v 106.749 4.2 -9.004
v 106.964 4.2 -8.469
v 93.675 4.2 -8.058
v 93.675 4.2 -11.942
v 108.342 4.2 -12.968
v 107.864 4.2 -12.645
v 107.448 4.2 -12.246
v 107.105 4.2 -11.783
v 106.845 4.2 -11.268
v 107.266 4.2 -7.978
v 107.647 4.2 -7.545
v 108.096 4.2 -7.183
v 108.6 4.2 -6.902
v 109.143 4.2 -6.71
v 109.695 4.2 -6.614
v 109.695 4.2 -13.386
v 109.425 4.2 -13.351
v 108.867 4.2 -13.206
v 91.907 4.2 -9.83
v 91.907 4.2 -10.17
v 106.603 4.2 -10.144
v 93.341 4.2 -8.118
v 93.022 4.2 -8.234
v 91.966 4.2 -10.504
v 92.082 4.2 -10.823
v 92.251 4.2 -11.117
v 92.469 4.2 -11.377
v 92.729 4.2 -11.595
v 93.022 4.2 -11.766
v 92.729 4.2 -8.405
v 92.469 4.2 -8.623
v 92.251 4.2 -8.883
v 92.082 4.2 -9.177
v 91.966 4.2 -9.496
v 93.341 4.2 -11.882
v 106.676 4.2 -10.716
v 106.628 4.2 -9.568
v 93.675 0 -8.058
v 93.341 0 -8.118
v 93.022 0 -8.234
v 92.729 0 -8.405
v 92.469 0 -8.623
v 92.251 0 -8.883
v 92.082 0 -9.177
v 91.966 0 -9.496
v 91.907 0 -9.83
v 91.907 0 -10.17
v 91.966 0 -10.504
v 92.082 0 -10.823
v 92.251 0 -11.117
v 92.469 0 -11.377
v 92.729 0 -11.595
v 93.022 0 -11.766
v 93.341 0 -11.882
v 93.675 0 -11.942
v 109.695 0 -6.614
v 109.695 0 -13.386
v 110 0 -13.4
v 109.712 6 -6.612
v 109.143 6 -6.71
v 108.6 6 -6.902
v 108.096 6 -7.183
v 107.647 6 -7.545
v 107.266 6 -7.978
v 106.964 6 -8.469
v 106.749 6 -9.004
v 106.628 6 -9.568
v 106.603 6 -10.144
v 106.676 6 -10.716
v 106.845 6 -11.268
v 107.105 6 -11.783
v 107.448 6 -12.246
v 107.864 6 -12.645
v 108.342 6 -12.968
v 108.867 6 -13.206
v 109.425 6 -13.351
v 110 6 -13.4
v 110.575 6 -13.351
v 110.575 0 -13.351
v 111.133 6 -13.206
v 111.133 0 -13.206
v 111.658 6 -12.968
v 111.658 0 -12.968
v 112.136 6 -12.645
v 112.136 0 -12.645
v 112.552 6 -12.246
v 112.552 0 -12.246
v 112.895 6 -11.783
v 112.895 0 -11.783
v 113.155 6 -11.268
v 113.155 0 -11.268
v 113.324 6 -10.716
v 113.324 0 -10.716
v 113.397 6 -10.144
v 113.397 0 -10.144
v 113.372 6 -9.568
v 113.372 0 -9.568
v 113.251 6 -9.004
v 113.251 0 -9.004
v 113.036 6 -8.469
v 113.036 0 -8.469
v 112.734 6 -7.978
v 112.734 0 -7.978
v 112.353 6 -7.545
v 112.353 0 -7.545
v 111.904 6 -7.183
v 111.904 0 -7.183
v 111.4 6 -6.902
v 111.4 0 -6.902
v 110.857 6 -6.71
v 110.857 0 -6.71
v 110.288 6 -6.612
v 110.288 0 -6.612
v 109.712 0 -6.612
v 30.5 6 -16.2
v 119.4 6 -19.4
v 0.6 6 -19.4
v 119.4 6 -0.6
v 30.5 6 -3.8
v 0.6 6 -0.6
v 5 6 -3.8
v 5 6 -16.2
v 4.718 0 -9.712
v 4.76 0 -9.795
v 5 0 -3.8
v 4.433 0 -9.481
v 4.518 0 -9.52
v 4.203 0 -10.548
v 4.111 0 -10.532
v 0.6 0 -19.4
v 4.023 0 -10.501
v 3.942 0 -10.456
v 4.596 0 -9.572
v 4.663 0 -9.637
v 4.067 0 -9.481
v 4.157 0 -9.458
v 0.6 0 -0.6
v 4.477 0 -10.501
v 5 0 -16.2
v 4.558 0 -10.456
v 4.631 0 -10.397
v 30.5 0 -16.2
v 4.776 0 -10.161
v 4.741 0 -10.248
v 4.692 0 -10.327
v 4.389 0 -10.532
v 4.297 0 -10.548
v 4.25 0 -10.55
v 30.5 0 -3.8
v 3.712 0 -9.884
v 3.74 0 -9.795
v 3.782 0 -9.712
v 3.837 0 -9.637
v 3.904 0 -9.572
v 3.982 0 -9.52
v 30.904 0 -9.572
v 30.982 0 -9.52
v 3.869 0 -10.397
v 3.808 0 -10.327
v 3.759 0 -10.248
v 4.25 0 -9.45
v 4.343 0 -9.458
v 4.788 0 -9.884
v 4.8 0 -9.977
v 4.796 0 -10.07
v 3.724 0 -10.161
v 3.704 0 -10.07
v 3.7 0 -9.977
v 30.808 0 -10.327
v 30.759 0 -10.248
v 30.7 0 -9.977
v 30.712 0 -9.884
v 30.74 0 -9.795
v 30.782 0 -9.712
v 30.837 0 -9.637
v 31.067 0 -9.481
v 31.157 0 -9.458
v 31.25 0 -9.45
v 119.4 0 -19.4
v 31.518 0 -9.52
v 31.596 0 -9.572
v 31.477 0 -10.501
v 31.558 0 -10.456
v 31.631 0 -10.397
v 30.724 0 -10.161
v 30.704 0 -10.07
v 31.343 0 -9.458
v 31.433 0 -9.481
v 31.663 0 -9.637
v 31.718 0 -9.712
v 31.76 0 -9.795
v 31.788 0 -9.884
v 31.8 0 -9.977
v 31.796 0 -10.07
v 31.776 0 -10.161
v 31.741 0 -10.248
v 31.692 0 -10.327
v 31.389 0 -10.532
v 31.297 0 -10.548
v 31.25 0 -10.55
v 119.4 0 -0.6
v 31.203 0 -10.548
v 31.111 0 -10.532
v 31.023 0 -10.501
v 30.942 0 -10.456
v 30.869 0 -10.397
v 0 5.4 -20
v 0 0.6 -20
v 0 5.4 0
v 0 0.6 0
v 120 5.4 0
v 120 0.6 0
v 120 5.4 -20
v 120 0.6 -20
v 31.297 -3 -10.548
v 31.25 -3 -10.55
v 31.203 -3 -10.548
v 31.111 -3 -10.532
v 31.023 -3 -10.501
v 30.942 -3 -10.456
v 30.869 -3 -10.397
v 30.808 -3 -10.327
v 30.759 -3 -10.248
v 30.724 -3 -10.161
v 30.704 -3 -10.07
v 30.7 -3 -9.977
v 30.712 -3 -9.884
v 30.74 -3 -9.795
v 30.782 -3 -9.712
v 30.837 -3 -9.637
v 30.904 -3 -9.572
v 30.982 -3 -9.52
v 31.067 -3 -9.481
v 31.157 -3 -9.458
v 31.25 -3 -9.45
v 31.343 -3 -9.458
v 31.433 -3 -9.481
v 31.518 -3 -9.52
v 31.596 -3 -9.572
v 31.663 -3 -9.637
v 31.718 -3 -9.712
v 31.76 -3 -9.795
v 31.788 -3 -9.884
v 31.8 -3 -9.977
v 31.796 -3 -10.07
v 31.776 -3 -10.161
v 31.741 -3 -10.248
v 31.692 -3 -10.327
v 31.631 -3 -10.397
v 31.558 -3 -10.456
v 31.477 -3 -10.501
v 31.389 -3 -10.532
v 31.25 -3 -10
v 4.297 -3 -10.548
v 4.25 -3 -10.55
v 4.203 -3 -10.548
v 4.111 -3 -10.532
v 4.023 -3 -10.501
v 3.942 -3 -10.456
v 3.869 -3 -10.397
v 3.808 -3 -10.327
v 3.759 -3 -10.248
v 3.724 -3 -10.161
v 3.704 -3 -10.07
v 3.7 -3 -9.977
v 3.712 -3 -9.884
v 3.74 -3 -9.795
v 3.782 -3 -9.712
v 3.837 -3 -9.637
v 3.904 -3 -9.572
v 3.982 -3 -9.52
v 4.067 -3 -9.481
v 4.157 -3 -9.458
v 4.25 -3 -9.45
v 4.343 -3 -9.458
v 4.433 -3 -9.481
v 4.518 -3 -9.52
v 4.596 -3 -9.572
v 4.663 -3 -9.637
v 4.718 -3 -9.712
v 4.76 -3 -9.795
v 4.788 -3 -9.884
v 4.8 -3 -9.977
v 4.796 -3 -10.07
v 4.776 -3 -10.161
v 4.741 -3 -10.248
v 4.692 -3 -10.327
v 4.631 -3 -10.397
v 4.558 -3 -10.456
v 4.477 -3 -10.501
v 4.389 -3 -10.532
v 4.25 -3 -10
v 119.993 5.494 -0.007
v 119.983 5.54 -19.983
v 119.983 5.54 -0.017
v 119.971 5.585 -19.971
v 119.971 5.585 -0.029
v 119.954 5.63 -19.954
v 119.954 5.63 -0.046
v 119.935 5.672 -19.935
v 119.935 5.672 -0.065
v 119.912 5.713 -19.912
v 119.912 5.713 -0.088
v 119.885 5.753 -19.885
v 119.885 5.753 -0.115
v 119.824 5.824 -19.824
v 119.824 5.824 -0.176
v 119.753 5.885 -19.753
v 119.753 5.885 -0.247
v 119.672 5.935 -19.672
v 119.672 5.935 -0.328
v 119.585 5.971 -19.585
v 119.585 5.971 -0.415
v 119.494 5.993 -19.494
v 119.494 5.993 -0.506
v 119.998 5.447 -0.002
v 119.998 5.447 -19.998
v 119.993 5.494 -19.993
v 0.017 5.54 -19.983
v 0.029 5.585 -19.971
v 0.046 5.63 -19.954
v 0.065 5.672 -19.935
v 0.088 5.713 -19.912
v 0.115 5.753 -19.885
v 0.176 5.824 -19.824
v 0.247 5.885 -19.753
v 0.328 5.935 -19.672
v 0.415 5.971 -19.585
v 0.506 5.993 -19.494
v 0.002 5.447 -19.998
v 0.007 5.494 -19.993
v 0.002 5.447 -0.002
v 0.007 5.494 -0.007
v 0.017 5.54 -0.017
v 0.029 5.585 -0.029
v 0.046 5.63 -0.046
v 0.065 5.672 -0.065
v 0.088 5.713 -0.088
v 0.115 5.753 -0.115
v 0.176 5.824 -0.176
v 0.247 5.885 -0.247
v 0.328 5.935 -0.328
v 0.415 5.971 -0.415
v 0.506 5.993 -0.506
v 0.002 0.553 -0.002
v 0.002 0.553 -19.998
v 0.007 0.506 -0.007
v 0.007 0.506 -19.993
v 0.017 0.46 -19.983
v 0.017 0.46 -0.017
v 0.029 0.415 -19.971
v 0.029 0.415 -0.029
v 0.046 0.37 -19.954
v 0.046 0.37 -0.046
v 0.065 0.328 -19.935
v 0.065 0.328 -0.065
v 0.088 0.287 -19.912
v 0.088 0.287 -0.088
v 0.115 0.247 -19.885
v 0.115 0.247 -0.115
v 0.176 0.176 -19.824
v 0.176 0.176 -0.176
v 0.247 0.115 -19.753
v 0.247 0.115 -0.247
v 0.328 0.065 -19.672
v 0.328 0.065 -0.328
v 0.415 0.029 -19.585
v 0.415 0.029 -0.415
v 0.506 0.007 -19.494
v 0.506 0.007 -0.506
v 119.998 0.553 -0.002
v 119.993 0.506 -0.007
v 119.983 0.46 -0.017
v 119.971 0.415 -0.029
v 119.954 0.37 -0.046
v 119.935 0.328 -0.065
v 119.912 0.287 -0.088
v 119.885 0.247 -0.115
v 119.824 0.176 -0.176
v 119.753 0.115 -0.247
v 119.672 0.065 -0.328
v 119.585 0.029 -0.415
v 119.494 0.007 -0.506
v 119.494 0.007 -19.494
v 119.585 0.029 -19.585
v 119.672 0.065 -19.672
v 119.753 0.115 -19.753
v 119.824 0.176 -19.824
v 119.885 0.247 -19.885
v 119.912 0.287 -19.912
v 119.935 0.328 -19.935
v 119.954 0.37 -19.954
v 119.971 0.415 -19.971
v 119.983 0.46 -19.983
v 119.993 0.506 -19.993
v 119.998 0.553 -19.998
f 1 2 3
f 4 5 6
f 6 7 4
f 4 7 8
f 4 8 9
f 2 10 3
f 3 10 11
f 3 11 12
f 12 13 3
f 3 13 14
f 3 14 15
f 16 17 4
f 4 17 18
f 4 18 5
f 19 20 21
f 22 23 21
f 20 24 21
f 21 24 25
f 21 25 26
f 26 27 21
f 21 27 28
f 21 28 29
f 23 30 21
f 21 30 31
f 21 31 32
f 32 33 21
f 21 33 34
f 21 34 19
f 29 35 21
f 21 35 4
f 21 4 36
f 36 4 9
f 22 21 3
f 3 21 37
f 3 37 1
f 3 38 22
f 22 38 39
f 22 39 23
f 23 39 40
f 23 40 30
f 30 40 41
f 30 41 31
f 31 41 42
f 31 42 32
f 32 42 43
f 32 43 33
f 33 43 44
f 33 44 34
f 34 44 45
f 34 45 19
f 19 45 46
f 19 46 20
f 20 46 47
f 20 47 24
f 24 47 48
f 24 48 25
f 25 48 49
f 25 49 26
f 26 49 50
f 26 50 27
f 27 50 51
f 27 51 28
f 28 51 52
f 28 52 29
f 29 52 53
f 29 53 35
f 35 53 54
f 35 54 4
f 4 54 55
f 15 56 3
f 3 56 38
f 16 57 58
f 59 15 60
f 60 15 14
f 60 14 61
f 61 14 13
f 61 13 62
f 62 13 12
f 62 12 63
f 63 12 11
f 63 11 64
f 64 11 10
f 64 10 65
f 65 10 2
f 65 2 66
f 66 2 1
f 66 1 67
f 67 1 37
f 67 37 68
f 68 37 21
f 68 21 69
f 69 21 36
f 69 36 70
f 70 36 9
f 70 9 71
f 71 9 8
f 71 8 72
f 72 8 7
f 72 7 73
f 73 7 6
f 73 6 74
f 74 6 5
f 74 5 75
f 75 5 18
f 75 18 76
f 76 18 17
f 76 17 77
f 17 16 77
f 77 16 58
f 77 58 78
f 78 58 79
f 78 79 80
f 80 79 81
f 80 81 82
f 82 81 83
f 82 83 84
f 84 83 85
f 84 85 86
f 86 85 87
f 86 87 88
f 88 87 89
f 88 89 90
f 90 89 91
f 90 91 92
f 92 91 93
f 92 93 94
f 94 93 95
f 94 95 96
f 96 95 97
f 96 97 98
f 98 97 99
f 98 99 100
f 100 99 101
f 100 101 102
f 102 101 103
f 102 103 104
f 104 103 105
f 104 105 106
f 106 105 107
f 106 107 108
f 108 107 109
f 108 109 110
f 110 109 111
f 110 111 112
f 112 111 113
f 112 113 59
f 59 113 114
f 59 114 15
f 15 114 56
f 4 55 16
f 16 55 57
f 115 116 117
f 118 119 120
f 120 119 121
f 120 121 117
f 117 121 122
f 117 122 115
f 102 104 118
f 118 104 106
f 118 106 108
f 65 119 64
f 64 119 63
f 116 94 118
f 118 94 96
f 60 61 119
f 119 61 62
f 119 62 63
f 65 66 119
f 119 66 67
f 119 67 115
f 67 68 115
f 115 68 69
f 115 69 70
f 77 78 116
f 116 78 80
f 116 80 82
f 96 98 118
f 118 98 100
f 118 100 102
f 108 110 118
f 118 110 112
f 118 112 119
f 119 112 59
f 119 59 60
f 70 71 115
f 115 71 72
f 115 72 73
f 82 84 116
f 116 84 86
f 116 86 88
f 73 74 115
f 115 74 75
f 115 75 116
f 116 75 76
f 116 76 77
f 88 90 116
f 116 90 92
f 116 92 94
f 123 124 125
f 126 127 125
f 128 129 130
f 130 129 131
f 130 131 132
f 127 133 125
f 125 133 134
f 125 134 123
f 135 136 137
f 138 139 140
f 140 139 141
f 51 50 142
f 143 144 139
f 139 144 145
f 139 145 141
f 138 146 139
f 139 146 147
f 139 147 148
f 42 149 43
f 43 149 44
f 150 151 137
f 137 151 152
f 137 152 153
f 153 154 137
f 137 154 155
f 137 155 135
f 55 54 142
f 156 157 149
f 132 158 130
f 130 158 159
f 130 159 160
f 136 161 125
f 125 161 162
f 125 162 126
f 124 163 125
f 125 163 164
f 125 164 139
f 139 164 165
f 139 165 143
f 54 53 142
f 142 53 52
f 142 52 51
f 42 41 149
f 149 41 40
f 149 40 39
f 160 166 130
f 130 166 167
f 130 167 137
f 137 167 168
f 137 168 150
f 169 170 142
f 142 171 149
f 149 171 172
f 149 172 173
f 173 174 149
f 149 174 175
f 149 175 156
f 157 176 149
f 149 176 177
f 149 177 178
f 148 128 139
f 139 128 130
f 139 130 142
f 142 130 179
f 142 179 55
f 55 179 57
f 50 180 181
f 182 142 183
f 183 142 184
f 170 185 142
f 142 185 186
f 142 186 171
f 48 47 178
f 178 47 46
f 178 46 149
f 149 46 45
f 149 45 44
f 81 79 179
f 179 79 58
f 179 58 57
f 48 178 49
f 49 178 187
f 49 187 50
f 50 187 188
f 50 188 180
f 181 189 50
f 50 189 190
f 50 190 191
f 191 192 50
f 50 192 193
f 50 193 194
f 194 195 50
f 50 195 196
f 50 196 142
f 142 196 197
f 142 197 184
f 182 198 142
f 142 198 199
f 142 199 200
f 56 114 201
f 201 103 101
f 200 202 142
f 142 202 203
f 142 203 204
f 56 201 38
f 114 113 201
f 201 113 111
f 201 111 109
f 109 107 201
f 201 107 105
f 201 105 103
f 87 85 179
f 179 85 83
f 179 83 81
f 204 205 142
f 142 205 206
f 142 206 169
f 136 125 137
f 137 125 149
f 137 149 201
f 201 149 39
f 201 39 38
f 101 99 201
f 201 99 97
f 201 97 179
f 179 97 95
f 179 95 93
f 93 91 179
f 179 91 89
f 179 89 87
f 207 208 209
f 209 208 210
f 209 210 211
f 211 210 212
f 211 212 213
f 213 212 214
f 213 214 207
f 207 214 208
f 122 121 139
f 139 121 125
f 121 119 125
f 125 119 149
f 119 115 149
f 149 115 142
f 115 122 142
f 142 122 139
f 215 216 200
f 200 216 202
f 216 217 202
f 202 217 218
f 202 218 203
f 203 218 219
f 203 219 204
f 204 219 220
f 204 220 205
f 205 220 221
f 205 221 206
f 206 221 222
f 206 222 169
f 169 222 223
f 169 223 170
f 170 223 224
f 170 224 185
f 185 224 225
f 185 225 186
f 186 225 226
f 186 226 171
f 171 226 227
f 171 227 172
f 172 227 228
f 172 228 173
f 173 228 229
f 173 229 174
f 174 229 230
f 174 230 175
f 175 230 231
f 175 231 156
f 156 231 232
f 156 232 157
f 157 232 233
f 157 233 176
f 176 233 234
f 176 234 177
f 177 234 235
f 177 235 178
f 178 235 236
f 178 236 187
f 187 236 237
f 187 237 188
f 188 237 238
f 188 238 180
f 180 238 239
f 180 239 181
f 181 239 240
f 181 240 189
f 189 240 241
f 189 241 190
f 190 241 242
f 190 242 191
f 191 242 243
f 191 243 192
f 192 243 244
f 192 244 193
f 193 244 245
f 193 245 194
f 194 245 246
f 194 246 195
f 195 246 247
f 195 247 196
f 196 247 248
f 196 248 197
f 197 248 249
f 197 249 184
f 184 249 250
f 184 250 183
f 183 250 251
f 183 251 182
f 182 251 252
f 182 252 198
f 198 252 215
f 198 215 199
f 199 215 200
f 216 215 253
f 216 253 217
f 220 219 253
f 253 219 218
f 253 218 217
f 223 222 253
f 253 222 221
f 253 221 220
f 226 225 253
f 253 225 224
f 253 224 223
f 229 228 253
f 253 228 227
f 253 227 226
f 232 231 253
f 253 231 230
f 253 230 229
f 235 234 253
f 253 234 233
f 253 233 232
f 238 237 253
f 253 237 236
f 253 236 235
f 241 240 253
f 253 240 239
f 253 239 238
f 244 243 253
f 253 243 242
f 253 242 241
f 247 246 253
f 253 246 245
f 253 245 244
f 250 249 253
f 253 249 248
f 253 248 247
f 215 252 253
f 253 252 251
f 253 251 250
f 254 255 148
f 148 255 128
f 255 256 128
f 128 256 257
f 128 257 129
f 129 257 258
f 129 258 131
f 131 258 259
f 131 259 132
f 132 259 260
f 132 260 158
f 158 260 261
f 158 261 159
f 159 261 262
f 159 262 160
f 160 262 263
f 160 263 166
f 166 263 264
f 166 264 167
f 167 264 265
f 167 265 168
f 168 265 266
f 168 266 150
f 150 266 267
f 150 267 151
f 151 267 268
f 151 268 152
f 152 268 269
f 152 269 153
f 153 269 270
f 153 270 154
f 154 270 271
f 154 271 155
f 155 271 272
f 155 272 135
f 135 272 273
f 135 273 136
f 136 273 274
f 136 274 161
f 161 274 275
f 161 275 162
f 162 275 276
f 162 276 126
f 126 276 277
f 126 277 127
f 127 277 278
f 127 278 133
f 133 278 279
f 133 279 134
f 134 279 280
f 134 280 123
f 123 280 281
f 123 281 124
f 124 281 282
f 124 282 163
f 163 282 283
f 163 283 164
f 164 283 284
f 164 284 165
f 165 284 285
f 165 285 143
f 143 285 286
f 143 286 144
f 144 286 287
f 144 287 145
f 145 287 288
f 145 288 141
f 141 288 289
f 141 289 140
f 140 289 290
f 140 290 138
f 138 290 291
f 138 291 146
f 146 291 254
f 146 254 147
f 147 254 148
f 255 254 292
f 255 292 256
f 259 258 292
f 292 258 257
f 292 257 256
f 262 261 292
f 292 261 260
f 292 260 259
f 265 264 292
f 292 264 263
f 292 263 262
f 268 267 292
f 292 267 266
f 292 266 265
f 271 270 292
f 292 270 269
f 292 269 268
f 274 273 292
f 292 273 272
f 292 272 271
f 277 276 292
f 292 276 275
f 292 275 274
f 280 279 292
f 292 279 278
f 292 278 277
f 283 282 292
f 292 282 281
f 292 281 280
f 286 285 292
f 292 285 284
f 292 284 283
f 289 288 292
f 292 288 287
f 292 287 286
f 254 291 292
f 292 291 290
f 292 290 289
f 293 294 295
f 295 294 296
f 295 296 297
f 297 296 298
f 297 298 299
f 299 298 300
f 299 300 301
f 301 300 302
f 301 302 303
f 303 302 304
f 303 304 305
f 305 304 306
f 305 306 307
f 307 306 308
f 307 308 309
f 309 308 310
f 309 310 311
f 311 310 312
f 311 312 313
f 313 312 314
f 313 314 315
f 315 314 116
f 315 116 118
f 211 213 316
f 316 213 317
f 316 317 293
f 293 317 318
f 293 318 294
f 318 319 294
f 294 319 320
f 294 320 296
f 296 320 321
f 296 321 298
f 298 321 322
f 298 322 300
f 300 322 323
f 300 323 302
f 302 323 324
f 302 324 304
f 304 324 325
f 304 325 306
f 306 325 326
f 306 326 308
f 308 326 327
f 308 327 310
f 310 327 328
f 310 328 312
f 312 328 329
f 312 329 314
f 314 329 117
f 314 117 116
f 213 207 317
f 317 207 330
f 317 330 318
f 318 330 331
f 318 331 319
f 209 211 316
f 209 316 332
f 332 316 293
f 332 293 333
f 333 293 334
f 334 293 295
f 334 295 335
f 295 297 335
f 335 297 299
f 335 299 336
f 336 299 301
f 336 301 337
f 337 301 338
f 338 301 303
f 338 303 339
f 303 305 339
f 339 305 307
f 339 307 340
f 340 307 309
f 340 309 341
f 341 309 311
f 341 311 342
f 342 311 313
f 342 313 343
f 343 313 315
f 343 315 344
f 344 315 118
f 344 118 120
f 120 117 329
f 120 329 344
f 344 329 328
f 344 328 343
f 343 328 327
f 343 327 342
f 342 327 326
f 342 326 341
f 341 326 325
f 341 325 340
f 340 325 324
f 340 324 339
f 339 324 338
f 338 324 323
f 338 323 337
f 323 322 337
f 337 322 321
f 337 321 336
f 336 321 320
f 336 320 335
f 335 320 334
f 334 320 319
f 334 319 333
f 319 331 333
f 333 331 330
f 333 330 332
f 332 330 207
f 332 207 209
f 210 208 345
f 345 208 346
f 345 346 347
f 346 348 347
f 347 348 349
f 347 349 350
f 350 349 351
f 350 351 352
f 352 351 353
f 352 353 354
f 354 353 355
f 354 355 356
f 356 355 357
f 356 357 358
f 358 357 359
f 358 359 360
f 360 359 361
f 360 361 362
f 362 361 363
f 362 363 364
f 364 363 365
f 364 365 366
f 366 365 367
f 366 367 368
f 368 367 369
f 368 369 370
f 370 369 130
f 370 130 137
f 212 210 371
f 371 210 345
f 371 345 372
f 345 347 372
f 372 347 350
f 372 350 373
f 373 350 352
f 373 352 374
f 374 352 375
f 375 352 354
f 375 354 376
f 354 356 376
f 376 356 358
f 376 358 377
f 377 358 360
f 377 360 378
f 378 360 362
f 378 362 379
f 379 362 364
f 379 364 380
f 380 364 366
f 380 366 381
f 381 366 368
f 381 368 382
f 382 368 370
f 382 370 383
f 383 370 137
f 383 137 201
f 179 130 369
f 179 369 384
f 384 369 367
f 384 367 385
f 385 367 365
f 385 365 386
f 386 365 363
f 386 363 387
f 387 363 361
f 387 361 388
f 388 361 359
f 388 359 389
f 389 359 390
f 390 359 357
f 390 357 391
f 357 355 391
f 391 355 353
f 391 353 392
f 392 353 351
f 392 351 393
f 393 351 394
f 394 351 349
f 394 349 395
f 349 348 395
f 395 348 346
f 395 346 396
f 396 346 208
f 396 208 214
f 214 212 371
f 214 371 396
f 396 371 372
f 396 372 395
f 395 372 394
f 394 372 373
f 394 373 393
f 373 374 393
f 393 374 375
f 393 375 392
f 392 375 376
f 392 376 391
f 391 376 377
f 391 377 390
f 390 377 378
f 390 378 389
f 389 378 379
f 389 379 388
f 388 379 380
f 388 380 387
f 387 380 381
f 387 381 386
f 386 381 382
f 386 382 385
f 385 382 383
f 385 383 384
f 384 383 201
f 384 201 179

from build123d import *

# Parameters (mm, degrees)
SKETCH1_W           = 120
SKETCH1_H           = 20
SKETCH1_W_2         = 25.5
SKETCH1_H_2         = 12.4
BOSS_EXTRUDE1_DEPTH = 6
SKETCH3_R           = 0.55
BOSS_EXTRUDE2_DEPTH = 3
SKETCH4_W           = 36
SKETCH4_H           = 20
BOSS_EXTRUDE3_DEPTH = 1.8
SKETCH5_R           = 3.4
CUT_EXTRUDE1_DEPTH  = 1.8
FILLET1_R           = 0.6


with BuildPart() as part:
    # Sketch1 → Boss-Extrude1 (new body)
    with BuildSketch(Plane(origin=(0, 0, 0), x_dir=(1, 0, 0), z_dir=(0, 1, 0))):
        with Locations((60, 10)):
            Rectangle(SKETCH1_W, SKETCH1_H)
        with BuildLine():
            Line((93.674922601, 11.942124585), (109.694736842, 13.386268507))
            ThreePointArc((109.694736842, 13.386268507), (113.4, 10), (109.694736842, 6.613731493))
            Line((109.694736842, 6.613731493), (93.674922601, 8.057875415))
            ThreePointArc((93.674922601, 8.057875415), (91.9, 10), (93.674922601, 11.942124585))
        make_face(mode=Mode.SUBTRACT)
        with Locations((17.75, 10)):
            Rectangle(SKETCH1_W_2, SKETCH1_H_2, mode=Mode.SUBTRACT)
    extrude(amount=BOSS_EXTRUDE1_DEPTH)

    # Sketch3 → Boss-Extrude2 (add)
    with BuildSketch(Plane.XZ):
        with Locations(Location((4.25, -10, 0), (0, 0, 270))):
            Circle(SKETCH3_R)
        with Locations(Location((31.25, -10, 0), (0, 0, 270))):
            Circle(SKETCH3_R)
    extrude(amount=BOSS_EXTRUDE2_DEPTH)

    # Sketch4 → Boss-Extrude3 (add)
    with BuildSketch(Plane(origin=(0, 6, 0), x_dir=(1, 0, 0), z_dir=(0, 1, 0))):
        with Locations((102, 10)):
            Rectangle(SKETCH4_W, SKETCH4_H)
    extrude(amount=-BOSS_EXTRUDE3_DEPTH)

    # Sketch5 → Cut-Extrude1 (cut)
    with BuildSketch(Plane.XZ.offset(-4.2)):
        with Locations(Location((110, -10, 0), (0, 0, 270))):
            Circle(SKETCH5_R)
    extrude(amount=-CUT_EXTRUDE1_DEPTH, mode=Mode.SUBTRACT)

    # Fillet1
    fillet1_edges = [part.edges().sort_by_distance(p)[0] for p in [
        (120, 6, -10),
        (60, 6, -20),
        (0, 6, -10),
        (60, 0, -20),
        (120, 0, -10),
        (60, 0, 0),
        (0, 0, -10),
        (60, 6, 0),
    ]]
    fillet(fillet1_edges, radius=FILLET1_R)


solid = part.part
